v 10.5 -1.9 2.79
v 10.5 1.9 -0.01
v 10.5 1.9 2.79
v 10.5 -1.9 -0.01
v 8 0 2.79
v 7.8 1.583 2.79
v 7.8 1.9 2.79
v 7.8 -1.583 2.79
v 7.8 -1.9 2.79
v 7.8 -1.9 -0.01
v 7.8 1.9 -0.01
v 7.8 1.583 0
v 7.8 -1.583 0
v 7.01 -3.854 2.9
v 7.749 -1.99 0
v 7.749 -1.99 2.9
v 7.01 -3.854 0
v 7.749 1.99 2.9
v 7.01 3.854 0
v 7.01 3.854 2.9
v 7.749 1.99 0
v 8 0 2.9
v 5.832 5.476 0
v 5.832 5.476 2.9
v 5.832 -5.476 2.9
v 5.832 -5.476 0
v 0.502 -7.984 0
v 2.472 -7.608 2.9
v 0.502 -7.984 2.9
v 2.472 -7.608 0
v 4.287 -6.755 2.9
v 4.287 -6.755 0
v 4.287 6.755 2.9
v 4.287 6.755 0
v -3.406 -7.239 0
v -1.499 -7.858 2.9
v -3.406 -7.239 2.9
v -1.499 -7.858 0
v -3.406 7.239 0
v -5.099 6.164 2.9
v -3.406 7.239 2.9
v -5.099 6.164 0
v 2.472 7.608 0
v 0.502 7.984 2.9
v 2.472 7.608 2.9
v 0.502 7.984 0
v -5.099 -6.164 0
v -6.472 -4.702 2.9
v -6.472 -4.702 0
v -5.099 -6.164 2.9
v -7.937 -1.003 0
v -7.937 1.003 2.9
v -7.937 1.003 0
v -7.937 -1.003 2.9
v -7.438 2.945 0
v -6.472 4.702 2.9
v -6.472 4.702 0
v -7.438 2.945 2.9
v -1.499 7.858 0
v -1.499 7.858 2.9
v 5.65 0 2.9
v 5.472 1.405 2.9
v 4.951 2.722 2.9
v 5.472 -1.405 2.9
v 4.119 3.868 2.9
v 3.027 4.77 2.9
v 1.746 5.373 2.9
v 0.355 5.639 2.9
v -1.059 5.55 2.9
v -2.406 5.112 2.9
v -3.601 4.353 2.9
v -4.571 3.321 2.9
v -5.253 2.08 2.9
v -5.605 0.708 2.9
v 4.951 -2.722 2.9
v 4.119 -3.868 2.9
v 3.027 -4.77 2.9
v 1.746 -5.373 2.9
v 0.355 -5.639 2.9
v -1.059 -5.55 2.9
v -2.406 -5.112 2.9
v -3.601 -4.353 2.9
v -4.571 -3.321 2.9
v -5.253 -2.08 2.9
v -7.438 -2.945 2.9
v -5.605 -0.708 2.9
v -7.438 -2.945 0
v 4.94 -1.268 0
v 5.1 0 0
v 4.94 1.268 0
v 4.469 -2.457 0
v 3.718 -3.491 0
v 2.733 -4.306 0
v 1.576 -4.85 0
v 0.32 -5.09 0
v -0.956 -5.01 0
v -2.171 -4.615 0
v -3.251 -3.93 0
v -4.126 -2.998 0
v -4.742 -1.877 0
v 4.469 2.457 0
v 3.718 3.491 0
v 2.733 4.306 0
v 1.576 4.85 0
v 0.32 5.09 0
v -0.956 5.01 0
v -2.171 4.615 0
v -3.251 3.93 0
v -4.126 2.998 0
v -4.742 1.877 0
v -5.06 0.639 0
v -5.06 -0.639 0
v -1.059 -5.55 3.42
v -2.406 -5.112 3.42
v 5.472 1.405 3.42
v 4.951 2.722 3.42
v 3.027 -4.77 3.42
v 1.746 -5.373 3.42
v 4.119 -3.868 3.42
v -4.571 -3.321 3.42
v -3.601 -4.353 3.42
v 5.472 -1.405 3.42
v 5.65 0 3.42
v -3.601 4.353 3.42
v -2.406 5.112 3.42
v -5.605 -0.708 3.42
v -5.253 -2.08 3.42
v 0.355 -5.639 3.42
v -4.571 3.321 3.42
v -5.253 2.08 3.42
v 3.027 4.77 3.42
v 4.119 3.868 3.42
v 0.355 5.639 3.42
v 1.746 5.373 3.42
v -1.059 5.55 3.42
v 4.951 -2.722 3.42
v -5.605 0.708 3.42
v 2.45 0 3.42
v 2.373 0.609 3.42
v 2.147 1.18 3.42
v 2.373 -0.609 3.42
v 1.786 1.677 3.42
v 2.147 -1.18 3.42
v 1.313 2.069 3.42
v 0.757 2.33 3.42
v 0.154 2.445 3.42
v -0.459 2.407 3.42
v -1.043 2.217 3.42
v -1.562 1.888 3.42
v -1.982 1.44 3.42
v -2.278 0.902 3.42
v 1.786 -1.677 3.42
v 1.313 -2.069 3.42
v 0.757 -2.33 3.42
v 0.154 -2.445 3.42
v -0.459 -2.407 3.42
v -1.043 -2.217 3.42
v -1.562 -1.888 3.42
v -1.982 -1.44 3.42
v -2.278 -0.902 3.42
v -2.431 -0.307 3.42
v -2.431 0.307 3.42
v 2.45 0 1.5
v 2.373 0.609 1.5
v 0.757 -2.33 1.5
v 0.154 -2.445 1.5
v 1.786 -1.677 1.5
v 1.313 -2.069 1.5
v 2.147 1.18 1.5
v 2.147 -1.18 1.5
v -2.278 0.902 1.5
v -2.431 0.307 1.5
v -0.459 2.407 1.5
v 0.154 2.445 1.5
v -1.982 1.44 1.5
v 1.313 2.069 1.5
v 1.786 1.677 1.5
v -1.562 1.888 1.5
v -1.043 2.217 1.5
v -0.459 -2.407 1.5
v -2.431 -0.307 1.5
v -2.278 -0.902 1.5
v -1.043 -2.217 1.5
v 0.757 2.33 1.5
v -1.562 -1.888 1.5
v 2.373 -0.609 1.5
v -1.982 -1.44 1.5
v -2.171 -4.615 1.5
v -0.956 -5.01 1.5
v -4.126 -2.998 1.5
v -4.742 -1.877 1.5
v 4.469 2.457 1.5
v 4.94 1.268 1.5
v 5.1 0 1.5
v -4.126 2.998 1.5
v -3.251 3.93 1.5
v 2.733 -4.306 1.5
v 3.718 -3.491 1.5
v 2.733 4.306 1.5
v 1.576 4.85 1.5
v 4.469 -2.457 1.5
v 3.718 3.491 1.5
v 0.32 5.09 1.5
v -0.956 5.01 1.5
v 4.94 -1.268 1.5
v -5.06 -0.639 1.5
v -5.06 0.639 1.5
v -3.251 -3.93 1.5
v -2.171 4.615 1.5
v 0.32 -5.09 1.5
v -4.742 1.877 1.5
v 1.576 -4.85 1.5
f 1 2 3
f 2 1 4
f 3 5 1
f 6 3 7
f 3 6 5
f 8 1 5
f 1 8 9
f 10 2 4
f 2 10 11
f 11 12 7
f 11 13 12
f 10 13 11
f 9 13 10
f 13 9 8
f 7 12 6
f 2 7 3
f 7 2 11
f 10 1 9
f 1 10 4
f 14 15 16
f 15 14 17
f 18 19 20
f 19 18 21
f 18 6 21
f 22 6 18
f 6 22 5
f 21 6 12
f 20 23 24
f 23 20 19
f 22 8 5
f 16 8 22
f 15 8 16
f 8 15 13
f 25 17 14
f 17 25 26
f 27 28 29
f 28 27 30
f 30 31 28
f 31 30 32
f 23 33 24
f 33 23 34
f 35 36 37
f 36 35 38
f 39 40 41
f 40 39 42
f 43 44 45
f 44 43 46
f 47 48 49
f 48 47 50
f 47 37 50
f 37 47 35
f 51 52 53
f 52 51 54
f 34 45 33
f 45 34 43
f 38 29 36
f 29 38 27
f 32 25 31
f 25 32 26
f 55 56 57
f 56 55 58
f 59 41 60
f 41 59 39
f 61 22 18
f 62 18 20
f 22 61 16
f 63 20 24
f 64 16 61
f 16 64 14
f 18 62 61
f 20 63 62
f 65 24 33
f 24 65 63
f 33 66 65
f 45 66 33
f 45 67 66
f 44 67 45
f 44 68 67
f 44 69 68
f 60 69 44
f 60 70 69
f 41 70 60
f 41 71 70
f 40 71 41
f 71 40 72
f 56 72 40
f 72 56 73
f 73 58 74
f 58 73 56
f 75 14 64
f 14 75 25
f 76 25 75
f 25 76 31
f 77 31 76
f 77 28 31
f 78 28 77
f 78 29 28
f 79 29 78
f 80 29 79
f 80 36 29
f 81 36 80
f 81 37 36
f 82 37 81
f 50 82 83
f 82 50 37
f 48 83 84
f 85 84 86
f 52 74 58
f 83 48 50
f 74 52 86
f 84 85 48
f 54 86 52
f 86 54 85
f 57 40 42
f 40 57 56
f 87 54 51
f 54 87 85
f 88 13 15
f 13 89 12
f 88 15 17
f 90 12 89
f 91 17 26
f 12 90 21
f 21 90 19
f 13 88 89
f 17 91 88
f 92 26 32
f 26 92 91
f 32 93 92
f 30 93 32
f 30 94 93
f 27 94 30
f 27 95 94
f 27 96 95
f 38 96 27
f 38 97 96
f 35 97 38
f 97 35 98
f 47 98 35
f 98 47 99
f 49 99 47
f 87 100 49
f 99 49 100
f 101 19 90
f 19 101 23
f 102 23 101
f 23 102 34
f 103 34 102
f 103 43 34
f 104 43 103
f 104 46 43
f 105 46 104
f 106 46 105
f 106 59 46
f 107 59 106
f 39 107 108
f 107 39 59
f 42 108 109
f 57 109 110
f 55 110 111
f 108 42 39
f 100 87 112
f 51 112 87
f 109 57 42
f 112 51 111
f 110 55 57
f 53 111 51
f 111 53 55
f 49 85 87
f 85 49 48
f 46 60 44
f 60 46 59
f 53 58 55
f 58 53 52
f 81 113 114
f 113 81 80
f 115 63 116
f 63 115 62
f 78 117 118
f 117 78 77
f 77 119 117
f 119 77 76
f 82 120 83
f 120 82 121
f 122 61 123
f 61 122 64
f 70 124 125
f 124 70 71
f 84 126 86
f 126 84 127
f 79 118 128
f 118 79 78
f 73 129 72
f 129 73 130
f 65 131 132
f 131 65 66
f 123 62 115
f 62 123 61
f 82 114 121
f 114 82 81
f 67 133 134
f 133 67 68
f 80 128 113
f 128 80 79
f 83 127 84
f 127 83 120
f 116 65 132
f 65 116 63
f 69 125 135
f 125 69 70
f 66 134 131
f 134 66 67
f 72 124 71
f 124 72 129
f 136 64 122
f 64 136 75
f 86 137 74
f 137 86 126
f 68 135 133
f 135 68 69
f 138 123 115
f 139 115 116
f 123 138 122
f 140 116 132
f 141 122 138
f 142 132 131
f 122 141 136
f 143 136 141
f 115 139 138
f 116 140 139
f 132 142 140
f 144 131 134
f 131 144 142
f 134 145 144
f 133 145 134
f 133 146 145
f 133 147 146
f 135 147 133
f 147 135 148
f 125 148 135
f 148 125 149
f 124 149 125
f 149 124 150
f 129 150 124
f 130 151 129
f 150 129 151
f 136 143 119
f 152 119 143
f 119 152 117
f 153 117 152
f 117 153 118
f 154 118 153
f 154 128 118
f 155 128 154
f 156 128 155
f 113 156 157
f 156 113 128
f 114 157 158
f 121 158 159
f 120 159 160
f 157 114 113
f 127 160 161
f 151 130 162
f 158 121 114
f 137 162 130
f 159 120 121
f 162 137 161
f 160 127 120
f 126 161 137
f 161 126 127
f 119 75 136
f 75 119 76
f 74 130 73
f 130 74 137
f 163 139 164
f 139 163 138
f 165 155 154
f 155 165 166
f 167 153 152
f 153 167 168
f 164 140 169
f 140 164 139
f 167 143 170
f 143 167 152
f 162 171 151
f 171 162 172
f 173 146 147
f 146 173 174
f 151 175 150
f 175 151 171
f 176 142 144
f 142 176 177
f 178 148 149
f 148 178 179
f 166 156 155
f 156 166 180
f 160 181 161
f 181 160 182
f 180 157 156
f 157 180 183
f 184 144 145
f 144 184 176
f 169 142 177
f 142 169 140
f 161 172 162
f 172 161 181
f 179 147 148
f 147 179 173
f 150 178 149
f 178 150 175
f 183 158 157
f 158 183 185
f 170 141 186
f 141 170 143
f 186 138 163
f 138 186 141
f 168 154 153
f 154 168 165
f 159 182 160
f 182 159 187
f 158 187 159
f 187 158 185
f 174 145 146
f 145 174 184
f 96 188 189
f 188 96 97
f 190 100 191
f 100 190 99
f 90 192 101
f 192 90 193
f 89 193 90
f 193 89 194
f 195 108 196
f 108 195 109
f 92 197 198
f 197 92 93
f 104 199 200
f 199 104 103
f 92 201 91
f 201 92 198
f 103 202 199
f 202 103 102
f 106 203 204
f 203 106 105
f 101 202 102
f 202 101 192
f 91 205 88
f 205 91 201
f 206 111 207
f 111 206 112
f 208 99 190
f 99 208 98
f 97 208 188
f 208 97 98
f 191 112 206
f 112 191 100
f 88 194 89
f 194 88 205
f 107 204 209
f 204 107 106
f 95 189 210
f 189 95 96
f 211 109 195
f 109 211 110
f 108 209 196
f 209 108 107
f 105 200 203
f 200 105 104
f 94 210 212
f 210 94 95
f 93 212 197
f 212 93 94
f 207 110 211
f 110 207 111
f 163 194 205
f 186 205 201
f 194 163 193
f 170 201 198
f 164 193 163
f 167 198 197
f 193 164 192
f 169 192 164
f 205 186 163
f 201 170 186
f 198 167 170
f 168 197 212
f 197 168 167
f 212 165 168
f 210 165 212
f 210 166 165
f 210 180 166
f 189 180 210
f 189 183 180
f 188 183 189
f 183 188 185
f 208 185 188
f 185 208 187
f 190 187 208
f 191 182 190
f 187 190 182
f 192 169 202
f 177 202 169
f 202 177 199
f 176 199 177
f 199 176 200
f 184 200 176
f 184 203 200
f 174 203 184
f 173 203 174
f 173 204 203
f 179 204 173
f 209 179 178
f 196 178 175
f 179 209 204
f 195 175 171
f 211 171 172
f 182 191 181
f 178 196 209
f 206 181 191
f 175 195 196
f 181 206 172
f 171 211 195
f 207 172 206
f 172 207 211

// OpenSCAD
// GWS10.8-76V Asapter

debug=0; 

debugFrames=1*debug;

// Select part to render/print
part=11; // [ 0:All, 1:adapter 16mm mit raste]

// Border for walls 
border=1.3;
// Border thinner walls 
border1=1;

// Add Space to fit
addSpace=.3;
addSpaceXYZ=addSpace*[1,1,1];
addSpace2XYZ=addSpace*2*[1,1,1];


// -----------------------------------------------------------------
// do not need to modify anything below here
// -----------------------------------------------------------------
/* [Hidden] */

// Number of segments in circle
$fn=25;

difference(){
    showPart(part=part);
 
    // for Debugging 
    // to see inside Objects
    // cube to cut object apart 
    if ( 0 * debug ) 
        translate([59,-2,-11.1]) 
        // translate([-14,2,-31.1]) 
            cube([120,190,55]);
} 

// Show the selected part
// part=0 shows all parts in a grid
module showPart(part=0){
    if ( part == 0) showAllParts();
    
 
    // Part Ids for Debugging
	if ( part == 11) Adapter16mm();
    
	
    if ( debug ) {
	if ( part == 21) Screw();
    if ( part == 22) GrinderWheel();
	
        }
}




module Adapter16mm(){ 
    h=2.8;
    difference(){

        // innerhalb des Werkzeuges
        union(){
            translate([16.0/2-.2,-3.8/2,-.01])
                cube([2.7,3.8,h]);
            cylinder(d=16.0,h=h+.1);
            
            // Abdeckplatte vertiefung
            translate([0,0,h+.01])
                cylinder(d=11.3,h=.6+.01);
        }
        
        // schraube
        translate([0,0,-.01])
            cylinder(d=4.9,h=9);

        // auflage am motor
        translate([0,0,-.01])
            cylinder(d=10.2,h=1.5+.01);
    }
}

 
module Screw(){
    cylinder(d=4.9,h=11.5);
    difference(){
        cylinder(d=19.5,h=3.4);
        translate([0,0,3.4-.6+.01])
            cylinder(d=11.3,h=.6+.01);
    }
}



module GrinderWheel(){    difference(){
        cylinder(d=74,h=2.9);
        translate([0,0,-.01]){
            translate([16.0/2-.2,-4.1/2,-.01])
                cube([2.7,4.1,3]);
            cylinder(d=16.0,h=2.9+.1);
        }
    }
}


// place all Partes in a grid
 module showAllParts(){
    distX=100;  maxX=5;
    distY=100; maxY=5;

    for ( i = [1:maxX] )
            for ( j = [0:maxY] ){
                translate([ (i-.5)*distX, (j-.5)*distY, 0])
                    showPart(part= i + j*10);
                if ( debugFrames ) 
                    translate([ (i-1)*distX, j*distY, 0])
                    	debugFrame(size=[distX-3,distY-3,1]);
                }
        
}

module debugFrame( size=[60,60,2], border=.3) {
    translate([0,0,-size[2]])
	    color("white") 
		    difference(){
		        cube(size);
		        translate( [0, 0, .01]
		        		 + border*[1, 1, 0])
		            cube(size - 2*border*[1,1,0]+[0,0,size[2]]);
		    }
}
